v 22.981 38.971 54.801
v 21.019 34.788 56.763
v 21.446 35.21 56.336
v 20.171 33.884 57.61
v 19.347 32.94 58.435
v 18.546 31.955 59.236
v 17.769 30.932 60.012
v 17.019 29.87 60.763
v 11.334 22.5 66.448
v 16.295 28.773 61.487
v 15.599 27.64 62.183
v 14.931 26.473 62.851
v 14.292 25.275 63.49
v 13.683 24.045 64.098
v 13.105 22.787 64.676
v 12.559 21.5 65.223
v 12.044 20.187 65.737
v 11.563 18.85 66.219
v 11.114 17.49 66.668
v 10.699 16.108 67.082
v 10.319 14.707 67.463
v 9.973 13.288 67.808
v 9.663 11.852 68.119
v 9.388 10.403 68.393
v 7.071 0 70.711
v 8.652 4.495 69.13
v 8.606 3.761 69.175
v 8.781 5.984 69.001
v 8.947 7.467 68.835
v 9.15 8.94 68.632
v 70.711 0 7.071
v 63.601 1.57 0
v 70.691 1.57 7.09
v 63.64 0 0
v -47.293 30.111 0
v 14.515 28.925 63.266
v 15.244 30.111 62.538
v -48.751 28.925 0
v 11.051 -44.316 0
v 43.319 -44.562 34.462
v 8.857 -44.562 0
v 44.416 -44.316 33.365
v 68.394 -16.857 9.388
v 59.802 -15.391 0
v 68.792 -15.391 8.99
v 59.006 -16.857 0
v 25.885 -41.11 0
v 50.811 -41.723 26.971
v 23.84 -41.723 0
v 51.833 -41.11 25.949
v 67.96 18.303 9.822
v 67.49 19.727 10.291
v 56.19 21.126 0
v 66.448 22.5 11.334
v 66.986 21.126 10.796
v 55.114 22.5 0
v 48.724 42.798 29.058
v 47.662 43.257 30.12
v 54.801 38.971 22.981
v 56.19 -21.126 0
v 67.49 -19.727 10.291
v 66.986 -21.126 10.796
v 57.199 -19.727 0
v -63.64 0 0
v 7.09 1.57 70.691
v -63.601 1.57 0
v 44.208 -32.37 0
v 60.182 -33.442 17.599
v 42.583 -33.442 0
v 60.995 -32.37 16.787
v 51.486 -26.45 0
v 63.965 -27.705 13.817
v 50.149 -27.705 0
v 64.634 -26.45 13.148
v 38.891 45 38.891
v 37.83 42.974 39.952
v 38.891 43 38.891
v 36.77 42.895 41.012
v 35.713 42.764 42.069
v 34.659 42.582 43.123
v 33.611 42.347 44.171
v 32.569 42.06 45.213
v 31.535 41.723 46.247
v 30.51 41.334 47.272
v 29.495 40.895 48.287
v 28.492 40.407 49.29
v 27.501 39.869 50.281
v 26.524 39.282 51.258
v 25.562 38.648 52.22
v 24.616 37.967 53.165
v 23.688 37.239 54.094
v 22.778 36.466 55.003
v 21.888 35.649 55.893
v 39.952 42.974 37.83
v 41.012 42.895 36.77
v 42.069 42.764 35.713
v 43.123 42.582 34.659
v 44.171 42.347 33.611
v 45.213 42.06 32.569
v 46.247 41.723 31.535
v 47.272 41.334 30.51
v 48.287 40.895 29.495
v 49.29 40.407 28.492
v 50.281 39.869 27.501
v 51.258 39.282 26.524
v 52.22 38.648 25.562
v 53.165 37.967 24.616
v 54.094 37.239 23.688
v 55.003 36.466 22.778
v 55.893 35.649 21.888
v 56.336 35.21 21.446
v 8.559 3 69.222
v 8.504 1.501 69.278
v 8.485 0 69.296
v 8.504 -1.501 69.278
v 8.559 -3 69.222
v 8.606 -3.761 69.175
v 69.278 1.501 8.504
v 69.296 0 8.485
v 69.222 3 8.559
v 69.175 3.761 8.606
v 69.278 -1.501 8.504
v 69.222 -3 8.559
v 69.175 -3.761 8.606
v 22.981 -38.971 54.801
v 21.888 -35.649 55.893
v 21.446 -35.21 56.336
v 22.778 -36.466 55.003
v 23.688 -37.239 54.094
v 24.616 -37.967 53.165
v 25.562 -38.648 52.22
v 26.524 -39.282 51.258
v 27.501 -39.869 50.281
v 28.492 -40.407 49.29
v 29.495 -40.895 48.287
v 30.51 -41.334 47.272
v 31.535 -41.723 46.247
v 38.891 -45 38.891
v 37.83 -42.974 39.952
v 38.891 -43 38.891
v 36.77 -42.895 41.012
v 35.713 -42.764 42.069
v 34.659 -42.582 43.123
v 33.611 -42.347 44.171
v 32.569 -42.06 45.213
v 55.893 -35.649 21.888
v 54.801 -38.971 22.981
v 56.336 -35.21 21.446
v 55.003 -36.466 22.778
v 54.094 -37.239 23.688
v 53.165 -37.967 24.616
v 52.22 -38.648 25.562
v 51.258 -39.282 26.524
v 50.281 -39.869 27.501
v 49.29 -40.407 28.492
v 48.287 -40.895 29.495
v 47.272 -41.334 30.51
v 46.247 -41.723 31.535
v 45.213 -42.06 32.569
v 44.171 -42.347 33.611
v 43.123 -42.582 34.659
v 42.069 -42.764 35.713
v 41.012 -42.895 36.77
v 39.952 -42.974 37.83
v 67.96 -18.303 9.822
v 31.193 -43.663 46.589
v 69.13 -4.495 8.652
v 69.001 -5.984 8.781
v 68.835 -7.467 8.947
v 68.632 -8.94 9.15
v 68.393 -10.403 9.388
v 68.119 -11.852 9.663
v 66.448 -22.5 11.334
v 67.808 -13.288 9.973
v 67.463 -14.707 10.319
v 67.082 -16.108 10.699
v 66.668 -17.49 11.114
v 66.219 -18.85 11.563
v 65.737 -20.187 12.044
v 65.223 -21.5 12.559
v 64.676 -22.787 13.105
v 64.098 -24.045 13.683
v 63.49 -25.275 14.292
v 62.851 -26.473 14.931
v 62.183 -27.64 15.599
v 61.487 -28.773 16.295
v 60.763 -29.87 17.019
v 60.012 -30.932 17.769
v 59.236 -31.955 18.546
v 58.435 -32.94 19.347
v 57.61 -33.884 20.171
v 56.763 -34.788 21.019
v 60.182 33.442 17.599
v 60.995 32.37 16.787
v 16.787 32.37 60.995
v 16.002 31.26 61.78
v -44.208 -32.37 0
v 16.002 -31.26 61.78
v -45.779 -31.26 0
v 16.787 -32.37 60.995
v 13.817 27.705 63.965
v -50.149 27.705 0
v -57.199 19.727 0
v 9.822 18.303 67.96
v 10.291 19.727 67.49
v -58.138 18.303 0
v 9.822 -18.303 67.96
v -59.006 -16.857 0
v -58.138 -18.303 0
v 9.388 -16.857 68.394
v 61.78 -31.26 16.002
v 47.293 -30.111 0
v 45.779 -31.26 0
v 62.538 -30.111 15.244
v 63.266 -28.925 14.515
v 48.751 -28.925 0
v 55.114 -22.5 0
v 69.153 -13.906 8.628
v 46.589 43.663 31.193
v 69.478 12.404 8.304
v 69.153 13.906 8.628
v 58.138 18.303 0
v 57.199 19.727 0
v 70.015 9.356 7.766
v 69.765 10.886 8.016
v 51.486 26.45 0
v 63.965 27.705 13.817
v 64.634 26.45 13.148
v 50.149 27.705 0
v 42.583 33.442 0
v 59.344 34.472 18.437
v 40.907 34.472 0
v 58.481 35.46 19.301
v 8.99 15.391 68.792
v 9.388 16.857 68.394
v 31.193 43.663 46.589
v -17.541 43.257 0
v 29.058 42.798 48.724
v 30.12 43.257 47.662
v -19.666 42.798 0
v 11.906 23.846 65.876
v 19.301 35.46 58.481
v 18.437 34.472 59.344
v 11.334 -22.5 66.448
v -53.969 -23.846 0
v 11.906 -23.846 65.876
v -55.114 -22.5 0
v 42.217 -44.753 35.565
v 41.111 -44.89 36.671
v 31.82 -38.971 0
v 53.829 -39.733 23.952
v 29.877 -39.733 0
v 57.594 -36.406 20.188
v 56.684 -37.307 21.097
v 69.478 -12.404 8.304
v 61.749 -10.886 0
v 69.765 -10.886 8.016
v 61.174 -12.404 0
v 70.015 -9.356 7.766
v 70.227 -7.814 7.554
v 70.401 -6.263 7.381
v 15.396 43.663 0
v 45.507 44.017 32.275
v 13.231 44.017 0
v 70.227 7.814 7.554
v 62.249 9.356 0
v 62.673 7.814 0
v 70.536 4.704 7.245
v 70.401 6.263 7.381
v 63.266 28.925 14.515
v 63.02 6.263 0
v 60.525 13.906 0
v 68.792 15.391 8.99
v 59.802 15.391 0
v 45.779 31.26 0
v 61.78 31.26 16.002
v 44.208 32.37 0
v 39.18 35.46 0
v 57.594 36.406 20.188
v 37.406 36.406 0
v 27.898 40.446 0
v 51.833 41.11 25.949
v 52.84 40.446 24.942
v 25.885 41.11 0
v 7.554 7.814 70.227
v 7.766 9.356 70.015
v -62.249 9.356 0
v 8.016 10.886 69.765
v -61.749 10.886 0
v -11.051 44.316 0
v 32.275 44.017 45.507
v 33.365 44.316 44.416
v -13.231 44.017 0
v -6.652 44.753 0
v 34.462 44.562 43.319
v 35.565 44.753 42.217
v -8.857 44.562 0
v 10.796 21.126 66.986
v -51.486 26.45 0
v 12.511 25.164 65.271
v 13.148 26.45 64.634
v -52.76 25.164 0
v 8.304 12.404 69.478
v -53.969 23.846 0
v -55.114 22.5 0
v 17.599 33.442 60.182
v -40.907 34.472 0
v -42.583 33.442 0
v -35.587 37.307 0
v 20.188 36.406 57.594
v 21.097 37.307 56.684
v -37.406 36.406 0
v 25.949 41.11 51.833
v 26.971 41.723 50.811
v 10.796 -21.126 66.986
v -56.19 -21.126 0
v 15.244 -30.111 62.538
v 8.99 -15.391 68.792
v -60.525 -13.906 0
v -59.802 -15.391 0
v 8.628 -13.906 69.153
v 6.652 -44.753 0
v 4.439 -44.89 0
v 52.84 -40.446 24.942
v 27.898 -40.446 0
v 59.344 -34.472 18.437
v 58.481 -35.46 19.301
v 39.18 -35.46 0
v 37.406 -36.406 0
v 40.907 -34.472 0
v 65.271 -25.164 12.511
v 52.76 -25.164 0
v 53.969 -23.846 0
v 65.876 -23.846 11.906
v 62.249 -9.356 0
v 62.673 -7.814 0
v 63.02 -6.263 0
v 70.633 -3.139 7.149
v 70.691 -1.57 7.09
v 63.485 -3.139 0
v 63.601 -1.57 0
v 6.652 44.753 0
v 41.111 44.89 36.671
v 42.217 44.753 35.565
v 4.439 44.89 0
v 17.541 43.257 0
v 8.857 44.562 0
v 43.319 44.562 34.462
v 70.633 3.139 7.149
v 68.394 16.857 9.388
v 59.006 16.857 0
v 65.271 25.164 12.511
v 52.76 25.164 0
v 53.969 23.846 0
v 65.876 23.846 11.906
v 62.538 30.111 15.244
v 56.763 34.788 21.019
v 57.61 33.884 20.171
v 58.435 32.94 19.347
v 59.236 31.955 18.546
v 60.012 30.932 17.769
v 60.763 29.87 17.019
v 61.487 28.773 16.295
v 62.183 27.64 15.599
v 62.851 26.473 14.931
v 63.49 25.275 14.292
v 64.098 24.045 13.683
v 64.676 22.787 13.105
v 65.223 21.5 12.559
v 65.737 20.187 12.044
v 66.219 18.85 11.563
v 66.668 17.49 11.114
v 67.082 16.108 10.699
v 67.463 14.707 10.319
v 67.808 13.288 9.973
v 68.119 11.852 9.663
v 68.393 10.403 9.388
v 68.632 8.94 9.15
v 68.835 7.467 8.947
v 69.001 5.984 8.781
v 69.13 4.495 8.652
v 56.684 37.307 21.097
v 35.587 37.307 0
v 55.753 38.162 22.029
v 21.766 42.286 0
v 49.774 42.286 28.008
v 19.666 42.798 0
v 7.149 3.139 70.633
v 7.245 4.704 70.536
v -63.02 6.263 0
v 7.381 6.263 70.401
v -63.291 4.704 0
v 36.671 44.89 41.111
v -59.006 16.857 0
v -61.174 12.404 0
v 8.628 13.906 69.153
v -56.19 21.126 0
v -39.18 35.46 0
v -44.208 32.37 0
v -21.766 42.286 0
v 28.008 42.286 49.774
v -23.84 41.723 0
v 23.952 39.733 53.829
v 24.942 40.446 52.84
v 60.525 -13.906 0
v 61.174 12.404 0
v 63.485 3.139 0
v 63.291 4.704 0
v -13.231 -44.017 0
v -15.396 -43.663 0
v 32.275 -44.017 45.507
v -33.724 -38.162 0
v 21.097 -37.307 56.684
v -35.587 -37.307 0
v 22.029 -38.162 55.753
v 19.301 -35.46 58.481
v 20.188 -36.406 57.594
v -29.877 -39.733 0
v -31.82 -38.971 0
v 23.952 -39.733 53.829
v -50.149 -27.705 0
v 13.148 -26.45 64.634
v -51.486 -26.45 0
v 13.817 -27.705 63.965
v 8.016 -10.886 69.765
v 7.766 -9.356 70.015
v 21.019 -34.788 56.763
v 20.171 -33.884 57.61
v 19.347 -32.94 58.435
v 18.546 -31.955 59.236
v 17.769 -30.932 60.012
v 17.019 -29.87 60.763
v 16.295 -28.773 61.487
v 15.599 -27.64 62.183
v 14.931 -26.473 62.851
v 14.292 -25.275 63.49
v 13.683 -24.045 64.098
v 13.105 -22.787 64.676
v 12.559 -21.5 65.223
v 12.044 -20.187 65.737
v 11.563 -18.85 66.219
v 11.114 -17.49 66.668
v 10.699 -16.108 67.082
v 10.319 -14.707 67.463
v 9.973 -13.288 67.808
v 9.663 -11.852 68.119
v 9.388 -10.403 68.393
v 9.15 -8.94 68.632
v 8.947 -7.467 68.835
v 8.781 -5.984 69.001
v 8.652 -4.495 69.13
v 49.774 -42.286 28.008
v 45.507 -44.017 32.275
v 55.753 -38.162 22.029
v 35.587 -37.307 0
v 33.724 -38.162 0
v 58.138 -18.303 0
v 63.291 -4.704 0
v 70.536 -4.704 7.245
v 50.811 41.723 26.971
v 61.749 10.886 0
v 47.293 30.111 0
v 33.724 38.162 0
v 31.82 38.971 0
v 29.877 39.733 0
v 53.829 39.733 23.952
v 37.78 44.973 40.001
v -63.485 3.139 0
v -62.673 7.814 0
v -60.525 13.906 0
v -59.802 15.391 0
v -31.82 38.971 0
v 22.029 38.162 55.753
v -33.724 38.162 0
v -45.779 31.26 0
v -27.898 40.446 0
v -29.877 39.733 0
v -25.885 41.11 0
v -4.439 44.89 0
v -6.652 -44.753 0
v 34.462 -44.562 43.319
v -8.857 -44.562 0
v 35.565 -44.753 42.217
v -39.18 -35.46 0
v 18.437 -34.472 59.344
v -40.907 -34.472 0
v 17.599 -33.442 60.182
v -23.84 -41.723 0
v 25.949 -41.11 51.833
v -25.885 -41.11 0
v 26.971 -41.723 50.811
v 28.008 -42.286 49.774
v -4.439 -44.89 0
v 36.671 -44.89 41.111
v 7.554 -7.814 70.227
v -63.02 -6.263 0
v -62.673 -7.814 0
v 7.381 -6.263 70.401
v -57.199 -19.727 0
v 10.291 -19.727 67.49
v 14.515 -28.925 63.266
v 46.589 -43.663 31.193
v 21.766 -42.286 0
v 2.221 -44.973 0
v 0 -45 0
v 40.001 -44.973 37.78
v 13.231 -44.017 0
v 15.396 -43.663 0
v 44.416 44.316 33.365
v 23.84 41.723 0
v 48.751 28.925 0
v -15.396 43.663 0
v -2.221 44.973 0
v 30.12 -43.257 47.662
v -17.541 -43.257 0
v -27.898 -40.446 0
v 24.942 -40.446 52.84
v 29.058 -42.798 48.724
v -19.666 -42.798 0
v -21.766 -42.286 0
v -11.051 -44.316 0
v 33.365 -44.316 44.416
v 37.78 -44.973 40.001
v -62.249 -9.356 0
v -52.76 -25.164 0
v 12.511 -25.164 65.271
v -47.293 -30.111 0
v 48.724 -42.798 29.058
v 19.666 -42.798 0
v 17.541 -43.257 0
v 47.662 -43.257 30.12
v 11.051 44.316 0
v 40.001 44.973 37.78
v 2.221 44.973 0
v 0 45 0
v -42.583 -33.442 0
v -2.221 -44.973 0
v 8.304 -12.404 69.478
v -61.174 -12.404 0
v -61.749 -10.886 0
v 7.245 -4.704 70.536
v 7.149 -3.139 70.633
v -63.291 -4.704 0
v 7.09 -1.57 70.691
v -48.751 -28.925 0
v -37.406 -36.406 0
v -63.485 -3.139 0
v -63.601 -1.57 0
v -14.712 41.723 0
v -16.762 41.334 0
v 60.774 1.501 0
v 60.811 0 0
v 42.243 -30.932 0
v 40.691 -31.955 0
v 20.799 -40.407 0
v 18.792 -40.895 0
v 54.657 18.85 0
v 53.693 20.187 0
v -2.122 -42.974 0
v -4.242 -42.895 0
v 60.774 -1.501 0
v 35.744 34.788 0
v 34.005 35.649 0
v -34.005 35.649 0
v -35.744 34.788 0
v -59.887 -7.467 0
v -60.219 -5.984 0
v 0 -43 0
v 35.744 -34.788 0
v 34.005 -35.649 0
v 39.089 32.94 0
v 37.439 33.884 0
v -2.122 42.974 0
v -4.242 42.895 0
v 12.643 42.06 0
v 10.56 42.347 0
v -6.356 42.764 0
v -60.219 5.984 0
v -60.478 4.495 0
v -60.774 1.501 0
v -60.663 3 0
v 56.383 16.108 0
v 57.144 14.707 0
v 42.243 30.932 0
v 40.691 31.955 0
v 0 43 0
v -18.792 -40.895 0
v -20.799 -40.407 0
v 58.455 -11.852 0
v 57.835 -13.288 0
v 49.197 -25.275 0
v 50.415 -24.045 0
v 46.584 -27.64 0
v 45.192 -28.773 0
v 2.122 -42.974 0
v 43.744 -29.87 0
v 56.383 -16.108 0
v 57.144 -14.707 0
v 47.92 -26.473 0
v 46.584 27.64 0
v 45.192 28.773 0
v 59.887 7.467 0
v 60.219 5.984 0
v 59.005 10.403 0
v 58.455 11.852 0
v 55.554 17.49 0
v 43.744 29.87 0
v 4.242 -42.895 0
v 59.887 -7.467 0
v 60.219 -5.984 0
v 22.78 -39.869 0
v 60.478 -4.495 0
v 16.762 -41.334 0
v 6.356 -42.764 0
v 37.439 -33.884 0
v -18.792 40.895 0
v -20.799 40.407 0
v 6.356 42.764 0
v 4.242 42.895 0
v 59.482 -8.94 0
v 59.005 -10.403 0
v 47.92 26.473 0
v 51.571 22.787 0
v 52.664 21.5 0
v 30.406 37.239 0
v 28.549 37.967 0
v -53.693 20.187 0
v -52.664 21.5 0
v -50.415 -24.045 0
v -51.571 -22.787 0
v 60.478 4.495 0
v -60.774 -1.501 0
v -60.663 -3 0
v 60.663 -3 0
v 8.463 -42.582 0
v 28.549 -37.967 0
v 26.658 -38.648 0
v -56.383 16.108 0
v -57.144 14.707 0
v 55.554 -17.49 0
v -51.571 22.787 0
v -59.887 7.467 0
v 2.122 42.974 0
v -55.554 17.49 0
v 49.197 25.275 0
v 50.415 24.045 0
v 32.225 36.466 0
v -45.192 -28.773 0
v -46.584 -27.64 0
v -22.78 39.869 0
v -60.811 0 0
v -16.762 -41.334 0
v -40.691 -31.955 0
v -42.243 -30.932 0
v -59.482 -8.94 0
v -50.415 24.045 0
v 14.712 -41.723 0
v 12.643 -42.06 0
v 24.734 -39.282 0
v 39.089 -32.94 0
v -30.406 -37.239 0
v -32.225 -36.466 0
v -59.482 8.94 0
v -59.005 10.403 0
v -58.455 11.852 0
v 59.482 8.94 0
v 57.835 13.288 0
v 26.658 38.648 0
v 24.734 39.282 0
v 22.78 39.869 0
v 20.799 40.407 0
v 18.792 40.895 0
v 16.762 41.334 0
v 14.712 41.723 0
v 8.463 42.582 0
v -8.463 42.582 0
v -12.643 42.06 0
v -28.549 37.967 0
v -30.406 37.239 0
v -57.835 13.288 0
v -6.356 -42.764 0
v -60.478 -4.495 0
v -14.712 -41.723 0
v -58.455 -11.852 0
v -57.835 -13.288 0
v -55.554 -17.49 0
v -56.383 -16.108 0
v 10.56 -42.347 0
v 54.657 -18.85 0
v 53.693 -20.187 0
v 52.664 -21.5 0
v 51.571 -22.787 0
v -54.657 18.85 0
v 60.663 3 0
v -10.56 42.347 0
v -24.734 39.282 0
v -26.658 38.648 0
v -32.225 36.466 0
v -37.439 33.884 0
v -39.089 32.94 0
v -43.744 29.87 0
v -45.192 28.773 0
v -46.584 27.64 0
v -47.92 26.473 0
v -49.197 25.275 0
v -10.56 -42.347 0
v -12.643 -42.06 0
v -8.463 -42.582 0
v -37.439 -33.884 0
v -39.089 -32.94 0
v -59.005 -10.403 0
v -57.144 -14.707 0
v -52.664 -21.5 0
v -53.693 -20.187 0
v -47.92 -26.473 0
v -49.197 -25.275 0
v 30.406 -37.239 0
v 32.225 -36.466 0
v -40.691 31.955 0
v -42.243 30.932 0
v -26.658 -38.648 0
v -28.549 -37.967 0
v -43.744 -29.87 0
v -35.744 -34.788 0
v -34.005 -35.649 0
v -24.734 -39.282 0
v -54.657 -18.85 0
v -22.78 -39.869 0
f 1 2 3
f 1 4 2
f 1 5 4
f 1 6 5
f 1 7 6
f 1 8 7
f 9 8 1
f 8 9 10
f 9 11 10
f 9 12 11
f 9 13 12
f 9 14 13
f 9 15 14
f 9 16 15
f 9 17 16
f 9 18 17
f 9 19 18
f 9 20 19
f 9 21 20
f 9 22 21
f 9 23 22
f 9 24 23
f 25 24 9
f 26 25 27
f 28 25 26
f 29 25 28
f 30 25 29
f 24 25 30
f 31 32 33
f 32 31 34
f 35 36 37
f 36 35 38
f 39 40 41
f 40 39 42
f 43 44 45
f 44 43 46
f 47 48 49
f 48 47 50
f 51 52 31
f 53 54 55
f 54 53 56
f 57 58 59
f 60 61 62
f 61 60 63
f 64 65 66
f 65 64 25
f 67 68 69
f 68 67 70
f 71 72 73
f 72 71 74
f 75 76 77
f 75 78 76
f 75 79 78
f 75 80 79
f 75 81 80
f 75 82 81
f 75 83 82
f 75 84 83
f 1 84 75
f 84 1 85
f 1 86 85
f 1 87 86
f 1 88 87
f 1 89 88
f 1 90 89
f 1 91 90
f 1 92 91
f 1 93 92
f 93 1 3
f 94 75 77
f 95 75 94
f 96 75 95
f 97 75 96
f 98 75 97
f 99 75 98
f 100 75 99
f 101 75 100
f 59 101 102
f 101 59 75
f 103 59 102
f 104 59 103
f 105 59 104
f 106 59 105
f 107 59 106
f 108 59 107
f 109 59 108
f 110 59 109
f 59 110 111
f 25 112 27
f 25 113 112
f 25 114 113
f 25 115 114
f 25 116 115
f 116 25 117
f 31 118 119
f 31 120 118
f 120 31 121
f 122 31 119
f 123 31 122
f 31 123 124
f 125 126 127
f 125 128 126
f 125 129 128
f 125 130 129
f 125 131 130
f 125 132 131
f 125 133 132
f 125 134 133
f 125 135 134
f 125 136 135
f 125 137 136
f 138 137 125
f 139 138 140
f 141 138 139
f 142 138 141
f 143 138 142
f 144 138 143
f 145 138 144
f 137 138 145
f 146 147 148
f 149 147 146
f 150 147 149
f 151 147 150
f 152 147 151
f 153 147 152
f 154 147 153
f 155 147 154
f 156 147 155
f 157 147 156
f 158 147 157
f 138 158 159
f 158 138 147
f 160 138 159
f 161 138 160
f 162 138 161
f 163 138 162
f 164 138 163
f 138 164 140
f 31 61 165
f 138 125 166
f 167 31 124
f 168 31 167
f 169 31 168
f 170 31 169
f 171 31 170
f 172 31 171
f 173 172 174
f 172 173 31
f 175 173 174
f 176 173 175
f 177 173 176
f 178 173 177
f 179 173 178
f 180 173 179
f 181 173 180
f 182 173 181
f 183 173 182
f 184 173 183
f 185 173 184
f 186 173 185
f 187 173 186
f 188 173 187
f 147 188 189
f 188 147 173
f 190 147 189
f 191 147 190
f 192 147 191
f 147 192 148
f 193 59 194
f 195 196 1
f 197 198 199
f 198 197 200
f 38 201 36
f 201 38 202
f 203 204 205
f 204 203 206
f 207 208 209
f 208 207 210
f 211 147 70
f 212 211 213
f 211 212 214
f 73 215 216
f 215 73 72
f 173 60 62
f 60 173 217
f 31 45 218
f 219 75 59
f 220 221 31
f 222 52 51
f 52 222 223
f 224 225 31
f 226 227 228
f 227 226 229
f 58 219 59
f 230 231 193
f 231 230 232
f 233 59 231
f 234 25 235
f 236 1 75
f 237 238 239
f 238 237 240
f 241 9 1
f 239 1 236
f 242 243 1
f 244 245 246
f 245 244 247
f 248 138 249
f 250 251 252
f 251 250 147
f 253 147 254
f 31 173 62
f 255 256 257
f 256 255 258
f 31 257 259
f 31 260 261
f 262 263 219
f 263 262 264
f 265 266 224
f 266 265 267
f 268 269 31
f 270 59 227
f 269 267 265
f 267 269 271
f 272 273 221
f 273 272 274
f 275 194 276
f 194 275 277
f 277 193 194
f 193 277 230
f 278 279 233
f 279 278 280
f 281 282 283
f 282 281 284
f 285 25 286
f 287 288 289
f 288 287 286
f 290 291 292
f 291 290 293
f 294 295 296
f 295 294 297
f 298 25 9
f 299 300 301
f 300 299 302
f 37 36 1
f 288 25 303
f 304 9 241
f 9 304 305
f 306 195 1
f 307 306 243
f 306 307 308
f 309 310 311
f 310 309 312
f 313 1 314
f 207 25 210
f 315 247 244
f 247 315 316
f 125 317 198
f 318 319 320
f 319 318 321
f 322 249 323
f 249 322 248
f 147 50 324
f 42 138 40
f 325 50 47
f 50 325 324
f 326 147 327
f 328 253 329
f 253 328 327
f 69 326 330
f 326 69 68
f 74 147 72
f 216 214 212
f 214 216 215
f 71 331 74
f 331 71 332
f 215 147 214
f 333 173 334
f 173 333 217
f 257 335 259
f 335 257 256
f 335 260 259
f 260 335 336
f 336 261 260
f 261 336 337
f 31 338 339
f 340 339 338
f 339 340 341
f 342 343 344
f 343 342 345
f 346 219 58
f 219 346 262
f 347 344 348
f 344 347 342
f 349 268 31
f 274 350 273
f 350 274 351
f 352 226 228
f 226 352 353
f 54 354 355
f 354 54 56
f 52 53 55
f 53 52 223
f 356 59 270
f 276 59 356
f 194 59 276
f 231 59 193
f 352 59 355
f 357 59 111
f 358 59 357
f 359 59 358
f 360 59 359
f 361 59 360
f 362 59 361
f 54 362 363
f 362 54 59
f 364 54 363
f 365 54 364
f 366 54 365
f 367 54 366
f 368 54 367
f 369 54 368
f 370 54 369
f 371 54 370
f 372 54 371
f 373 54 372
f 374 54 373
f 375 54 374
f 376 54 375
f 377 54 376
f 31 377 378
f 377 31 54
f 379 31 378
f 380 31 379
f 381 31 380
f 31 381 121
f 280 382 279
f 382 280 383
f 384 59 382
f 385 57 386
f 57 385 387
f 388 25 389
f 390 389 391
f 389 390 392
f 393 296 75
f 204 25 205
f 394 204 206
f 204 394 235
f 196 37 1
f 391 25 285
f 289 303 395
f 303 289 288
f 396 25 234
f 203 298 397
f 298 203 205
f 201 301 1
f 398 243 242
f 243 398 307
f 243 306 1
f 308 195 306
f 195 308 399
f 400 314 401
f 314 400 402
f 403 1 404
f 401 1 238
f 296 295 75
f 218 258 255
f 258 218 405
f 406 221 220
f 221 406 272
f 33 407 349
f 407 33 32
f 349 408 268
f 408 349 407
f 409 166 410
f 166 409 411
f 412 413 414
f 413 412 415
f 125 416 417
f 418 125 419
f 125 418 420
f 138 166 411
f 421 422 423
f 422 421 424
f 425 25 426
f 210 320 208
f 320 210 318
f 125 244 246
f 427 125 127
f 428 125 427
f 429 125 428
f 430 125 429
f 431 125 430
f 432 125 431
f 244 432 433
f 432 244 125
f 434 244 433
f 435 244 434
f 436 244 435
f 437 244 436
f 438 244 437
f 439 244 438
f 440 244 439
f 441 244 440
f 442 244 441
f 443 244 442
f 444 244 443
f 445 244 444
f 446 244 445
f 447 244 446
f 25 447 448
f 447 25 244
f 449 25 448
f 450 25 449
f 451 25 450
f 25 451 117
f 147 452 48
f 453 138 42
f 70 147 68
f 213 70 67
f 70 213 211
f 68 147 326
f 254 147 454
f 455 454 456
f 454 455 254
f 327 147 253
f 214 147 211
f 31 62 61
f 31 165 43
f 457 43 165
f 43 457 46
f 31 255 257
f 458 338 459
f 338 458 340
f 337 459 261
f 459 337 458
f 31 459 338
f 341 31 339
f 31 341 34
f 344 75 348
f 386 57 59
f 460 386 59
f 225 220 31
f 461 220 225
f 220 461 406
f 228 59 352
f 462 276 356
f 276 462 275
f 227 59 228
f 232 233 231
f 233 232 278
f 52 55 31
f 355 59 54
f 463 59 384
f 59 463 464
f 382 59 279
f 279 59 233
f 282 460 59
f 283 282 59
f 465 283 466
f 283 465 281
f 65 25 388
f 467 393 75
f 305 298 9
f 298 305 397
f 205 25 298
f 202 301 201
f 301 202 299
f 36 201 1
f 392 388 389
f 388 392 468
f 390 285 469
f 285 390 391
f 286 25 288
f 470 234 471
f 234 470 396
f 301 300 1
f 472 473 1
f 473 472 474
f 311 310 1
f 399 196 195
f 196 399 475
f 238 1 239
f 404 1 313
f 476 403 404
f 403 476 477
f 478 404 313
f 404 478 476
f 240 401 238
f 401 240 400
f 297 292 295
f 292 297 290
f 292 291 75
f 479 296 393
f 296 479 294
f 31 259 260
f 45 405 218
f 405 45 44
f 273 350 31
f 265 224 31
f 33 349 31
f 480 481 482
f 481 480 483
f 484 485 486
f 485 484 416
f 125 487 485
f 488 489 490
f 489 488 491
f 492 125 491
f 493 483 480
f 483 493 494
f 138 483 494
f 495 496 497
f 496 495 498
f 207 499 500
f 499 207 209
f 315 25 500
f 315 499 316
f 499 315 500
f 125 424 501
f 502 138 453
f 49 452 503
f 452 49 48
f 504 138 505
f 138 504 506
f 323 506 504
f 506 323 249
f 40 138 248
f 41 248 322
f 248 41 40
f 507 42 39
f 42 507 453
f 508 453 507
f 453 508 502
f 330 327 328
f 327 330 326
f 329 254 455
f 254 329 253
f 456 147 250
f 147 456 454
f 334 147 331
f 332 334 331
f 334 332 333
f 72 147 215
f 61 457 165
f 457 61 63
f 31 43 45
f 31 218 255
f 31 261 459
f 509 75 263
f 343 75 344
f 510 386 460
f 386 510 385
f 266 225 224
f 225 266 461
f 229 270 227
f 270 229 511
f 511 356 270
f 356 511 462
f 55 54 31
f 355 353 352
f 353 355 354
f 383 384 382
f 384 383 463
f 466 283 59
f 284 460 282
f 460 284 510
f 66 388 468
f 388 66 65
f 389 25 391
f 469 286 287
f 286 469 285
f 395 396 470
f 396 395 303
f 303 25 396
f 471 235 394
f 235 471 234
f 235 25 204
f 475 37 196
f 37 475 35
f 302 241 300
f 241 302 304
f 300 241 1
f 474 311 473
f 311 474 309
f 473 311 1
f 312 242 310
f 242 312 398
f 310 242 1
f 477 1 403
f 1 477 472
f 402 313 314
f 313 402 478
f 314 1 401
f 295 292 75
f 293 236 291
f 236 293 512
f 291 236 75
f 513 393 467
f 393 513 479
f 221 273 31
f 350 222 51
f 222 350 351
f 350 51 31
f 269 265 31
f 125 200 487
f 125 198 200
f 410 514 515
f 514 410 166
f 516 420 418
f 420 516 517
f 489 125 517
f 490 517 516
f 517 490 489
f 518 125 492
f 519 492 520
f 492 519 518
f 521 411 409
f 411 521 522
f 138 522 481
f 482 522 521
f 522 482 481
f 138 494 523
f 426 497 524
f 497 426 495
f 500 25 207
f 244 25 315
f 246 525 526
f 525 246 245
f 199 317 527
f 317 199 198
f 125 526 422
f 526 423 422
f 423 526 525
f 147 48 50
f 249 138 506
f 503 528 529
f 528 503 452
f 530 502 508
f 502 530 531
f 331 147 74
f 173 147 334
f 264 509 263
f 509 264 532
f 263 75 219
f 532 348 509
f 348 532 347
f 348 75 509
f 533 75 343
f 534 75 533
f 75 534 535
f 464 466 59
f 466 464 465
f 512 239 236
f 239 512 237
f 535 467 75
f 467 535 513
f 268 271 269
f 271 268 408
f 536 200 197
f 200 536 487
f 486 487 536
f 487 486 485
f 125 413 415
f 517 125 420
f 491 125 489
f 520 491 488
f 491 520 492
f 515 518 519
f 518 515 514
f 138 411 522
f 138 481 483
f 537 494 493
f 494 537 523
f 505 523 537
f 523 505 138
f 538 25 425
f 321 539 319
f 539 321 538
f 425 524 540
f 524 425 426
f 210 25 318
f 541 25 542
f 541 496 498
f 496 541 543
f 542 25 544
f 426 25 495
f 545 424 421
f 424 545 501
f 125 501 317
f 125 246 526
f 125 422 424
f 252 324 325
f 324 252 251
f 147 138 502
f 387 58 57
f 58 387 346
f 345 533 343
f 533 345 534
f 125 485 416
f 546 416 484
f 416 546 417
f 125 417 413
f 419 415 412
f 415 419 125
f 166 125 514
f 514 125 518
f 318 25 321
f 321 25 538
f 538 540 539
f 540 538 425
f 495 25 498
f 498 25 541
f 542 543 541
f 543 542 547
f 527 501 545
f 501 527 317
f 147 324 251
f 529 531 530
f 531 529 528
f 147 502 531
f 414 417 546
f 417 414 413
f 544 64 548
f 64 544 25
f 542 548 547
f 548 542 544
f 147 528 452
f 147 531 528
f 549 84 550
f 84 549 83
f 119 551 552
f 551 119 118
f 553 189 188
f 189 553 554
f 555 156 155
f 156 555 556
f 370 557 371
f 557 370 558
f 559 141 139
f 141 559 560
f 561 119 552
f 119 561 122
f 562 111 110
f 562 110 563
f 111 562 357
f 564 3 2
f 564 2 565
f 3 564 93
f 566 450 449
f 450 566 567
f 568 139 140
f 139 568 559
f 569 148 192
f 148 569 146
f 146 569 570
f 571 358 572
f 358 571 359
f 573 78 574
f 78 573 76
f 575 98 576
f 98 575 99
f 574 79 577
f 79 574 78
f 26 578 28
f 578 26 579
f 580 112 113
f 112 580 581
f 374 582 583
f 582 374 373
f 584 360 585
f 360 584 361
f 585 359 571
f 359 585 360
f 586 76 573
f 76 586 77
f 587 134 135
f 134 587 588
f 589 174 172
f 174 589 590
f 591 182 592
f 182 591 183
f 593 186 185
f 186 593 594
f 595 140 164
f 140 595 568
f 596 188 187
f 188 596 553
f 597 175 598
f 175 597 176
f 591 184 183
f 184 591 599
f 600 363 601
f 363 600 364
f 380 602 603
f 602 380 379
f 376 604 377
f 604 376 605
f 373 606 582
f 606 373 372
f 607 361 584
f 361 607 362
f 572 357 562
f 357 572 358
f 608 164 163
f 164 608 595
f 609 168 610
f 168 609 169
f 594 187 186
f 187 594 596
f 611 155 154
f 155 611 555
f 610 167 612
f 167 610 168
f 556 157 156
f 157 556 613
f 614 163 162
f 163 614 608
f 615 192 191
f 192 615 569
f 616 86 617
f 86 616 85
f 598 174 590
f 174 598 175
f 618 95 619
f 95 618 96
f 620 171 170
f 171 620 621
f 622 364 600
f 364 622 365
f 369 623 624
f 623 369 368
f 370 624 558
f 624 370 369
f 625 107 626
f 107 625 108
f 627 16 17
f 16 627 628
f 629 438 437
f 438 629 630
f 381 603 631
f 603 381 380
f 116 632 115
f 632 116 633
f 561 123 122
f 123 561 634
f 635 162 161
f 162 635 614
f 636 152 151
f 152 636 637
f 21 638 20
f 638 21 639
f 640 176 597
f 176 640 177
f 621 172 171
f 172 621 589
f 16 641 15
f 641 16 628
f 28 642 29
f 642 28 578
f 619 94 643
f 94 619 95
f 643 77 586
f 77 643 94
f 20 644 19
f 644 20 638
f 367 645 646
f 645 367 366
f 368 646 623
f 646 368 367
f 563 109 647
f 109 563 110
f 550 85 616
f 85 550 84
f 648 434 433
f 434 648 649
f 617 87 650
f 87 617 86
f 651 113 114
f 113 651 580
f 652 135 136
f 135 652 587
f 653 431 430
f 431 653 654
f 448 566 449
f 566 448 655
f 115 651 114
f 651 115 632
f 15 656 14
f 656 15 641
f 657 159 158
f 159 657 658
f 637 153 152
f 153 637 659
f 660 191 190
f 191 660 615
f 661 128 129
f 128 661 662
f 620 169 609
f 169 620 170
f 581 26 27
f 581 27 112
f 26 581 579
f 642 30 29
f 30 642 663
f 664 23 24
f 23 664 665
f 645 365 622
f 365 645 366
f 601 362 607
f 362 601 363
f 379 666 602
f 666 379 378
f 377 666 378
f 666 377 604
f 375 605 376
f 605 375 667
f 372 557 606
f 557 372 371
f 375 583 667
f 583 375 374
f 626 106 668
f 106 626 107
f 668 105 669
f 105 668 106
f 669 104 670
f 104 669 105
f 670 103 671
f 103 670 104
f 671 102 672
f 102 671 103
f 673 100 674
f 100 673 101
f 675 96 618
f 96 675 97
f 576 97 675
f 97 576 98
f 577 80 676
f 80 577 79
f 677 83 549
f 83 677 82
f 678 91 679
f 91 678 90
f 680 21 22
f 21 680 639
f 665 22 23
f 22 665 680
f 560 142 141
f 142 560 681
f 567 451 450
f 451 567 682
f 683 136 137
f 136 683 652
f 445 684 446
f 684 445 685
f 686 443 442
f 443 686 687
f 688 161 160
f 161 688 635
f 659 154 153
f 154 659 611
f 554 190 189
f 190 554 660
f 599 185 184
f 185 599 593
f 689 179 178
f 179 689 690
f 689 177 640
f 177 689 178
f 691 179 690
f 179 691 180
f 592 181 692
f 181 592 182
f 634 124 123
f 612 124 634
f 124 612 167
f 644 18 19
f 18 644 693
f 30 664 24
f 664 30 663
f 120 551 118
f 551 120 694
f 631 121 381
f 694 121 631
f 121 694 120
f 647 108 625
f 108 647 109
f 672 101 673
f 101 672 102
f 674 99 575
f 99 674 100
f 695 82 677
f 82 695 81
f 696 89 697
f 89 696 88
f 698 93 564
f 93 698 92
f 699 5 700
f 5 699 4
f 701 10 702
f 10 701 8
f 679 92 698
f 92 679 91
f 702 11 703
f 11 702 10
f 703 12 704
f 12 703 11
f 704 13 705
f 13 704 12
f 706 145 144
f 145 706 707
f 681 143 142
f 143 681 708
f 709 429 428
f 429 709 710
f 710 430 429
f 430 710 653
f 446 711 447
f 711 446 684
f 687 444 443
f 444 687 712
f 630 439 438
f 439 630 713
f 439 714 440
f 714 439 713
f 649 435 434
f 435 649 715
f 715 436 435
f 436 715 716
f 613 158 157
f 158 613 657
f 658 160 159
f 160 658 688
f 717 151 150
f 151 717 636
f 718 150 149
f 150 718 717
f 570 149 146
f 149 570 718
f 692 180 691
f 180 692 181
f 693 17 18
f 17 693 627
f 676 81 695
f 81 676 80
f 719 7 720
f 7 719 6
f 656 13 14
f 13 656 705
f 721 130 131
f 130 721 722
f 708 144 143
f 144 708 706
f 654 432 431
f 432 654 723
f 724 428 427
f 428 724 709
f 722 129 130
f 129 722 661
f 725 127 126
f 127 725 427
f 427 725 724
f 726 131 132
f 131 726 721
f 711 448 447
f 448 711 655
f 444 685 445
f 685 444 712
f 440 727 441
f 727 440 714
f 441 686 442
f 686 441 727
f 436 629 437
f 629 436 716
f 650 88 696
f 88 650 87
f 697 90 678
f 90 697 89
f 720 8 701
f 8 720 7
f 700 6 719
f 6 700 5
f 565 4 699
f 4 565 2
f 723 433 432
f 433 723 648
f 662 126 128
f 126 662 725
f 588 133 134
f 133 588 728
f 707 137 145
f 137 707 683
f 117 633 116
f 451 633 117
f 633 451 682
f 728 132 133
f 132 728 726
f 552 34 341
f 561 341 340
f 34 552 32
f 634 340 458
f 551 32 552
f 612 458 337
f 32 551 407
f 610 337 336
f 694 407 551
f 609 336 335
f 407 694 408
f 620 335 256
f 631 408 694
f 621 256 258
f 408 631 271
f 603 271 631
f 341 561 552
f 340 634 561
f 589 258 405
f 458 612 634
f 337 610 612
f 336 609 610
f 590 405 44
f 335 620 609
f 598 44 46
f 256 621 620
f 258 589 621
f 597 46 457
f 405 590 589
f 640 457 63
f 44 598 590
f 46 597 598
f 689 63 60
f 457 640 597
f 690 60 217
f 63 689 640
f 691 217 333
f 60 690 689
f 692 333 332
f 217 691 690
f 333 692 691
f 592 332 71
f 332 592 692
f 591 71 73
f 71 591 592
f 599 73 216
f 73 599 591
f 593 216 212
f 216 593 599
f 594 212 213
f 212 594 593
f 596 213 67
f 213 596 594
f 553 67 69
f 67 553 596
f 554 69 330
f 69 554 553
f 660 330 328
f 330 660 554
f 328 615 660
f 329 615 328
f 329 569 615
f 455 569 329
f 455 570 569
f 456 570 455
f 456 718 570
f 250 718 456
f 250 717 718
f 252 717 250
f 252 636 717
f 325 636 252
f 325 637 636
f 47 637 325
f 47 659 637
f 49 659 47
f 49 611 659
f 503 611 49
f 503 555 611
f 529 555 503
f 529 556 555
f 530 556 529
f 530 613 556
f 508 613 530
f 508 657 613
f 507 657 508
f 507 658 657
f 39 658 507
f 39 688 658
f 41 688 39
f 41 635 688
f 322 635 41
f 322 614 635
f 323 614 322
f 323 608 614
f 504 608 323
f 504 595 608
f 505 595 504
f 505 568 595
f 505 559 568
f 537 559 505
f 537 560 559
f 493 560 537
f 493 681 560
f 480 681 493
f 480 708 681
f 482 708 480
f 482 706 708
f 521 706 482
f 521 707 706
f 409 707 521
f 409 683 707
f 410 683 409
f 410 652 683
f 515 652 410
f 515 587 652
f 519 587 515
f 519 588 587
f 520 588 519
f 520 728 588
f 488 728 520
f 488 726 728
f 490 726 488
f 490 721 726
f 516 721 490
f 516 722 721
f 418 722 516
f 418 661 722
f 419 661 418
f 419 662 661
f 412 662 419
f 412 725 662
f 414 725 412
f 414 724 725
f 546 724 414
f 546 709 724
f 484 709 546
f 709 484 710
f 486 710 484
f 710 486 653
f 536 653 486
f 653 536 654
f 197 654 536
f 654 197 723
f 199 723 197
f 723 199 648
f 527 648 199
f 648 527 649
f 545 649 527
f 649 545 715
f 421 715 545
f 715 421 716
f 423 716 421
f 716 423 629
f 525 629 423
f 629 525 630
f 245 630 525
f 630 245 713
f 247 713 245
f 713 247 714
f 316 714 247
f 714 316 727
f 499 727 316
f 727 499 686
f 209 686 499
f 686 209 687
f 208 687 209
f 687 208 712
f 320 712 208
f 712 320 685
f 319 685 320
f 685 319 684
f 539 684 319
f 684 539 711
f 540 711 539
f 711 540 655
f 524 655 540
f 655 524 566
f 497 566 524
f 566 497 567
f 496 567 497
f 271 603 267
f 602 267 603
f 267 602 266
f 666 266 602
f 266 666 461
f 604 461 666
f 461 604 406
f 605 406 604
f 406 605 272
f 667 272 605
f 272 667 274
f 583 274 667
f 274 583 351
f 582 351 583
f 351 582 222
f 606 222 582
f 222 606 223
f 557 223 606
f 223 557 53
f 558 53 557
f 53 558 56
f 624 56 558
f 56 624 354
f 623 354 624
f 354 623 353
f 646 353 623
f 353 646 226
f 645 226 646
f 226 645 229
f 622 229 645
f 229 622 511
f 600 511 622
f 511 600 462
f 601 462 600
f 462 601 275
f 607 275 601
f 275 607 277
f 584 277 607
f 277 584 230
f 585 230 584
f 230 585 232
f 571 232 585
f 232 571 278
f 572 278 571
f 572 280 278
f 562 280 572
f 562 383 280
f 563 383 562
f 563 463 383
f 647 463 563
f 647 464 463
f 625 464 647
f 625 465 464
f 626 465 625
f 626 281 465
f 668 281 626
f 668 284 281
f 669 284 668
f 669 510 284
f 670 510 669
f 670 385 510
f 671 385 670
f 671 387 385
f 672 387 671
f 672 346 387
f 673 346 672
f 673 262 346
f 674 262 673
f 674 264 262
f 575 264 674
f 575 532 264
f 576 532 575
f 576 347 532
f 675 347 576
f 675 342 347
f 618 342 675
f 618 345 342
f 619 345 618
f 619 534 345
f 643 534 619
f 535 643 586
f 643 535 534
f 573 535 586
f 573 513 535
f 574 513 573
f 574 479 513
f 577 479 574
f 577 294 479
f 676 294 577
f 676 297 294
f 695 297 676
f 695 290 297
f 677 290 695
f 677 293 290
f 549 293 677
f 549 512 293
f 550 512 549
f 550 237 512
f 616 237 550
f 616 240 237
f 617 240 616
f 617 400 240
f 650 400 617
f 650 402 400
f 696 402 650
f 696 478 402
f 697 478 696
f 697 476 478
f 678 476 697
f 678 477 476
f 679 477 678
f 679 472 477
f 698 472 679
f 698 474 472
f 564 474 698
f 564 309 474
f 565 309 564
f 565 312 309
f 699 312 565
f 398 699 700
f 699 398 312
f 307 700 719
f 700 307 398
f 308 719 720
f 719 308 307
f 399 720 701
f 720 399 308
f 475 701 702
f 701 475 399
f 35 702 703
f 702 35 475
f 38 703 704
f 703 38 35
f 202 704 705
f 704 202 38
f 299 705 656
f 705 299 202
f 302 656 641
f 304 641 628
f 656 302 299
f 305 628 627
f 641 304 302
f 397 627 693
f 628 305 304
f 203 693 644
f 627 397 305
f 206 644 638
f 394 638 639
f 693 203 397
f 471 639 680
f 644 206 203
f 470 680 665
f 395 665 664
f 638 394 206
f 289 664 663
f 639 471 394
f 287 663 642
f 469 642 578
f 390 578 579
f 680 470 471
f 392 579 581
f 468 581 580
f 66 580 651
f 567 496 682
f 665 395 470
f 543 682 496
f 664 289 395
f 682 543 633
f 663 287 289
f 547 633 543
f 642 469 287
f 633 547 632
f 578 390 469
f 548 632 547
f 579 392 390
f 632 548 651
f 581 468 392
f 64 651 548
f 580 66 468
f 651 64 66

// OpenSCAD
inner_diameter=86;
wall_thickness=2;
height =55;
$fn=180;
overcut=0.5;
angle=45;

difference() {
    rotate([0,angle,0])
        translate([0, 0, -height])
        cylinder(h = 2*height, d = inner_diameter + 2*wall_thickness);
    rotate([0,angle,0])
        translate([0, 0, -height - overcut])
        cylinder(h = 2*height + 2*overcut, d = inner_diameter);
    translate([-(height + inner_diameter), -(height + inner_diameter), -2*(height + inner_diameter)])
        cube(2*(height + inner_diameter));
}
